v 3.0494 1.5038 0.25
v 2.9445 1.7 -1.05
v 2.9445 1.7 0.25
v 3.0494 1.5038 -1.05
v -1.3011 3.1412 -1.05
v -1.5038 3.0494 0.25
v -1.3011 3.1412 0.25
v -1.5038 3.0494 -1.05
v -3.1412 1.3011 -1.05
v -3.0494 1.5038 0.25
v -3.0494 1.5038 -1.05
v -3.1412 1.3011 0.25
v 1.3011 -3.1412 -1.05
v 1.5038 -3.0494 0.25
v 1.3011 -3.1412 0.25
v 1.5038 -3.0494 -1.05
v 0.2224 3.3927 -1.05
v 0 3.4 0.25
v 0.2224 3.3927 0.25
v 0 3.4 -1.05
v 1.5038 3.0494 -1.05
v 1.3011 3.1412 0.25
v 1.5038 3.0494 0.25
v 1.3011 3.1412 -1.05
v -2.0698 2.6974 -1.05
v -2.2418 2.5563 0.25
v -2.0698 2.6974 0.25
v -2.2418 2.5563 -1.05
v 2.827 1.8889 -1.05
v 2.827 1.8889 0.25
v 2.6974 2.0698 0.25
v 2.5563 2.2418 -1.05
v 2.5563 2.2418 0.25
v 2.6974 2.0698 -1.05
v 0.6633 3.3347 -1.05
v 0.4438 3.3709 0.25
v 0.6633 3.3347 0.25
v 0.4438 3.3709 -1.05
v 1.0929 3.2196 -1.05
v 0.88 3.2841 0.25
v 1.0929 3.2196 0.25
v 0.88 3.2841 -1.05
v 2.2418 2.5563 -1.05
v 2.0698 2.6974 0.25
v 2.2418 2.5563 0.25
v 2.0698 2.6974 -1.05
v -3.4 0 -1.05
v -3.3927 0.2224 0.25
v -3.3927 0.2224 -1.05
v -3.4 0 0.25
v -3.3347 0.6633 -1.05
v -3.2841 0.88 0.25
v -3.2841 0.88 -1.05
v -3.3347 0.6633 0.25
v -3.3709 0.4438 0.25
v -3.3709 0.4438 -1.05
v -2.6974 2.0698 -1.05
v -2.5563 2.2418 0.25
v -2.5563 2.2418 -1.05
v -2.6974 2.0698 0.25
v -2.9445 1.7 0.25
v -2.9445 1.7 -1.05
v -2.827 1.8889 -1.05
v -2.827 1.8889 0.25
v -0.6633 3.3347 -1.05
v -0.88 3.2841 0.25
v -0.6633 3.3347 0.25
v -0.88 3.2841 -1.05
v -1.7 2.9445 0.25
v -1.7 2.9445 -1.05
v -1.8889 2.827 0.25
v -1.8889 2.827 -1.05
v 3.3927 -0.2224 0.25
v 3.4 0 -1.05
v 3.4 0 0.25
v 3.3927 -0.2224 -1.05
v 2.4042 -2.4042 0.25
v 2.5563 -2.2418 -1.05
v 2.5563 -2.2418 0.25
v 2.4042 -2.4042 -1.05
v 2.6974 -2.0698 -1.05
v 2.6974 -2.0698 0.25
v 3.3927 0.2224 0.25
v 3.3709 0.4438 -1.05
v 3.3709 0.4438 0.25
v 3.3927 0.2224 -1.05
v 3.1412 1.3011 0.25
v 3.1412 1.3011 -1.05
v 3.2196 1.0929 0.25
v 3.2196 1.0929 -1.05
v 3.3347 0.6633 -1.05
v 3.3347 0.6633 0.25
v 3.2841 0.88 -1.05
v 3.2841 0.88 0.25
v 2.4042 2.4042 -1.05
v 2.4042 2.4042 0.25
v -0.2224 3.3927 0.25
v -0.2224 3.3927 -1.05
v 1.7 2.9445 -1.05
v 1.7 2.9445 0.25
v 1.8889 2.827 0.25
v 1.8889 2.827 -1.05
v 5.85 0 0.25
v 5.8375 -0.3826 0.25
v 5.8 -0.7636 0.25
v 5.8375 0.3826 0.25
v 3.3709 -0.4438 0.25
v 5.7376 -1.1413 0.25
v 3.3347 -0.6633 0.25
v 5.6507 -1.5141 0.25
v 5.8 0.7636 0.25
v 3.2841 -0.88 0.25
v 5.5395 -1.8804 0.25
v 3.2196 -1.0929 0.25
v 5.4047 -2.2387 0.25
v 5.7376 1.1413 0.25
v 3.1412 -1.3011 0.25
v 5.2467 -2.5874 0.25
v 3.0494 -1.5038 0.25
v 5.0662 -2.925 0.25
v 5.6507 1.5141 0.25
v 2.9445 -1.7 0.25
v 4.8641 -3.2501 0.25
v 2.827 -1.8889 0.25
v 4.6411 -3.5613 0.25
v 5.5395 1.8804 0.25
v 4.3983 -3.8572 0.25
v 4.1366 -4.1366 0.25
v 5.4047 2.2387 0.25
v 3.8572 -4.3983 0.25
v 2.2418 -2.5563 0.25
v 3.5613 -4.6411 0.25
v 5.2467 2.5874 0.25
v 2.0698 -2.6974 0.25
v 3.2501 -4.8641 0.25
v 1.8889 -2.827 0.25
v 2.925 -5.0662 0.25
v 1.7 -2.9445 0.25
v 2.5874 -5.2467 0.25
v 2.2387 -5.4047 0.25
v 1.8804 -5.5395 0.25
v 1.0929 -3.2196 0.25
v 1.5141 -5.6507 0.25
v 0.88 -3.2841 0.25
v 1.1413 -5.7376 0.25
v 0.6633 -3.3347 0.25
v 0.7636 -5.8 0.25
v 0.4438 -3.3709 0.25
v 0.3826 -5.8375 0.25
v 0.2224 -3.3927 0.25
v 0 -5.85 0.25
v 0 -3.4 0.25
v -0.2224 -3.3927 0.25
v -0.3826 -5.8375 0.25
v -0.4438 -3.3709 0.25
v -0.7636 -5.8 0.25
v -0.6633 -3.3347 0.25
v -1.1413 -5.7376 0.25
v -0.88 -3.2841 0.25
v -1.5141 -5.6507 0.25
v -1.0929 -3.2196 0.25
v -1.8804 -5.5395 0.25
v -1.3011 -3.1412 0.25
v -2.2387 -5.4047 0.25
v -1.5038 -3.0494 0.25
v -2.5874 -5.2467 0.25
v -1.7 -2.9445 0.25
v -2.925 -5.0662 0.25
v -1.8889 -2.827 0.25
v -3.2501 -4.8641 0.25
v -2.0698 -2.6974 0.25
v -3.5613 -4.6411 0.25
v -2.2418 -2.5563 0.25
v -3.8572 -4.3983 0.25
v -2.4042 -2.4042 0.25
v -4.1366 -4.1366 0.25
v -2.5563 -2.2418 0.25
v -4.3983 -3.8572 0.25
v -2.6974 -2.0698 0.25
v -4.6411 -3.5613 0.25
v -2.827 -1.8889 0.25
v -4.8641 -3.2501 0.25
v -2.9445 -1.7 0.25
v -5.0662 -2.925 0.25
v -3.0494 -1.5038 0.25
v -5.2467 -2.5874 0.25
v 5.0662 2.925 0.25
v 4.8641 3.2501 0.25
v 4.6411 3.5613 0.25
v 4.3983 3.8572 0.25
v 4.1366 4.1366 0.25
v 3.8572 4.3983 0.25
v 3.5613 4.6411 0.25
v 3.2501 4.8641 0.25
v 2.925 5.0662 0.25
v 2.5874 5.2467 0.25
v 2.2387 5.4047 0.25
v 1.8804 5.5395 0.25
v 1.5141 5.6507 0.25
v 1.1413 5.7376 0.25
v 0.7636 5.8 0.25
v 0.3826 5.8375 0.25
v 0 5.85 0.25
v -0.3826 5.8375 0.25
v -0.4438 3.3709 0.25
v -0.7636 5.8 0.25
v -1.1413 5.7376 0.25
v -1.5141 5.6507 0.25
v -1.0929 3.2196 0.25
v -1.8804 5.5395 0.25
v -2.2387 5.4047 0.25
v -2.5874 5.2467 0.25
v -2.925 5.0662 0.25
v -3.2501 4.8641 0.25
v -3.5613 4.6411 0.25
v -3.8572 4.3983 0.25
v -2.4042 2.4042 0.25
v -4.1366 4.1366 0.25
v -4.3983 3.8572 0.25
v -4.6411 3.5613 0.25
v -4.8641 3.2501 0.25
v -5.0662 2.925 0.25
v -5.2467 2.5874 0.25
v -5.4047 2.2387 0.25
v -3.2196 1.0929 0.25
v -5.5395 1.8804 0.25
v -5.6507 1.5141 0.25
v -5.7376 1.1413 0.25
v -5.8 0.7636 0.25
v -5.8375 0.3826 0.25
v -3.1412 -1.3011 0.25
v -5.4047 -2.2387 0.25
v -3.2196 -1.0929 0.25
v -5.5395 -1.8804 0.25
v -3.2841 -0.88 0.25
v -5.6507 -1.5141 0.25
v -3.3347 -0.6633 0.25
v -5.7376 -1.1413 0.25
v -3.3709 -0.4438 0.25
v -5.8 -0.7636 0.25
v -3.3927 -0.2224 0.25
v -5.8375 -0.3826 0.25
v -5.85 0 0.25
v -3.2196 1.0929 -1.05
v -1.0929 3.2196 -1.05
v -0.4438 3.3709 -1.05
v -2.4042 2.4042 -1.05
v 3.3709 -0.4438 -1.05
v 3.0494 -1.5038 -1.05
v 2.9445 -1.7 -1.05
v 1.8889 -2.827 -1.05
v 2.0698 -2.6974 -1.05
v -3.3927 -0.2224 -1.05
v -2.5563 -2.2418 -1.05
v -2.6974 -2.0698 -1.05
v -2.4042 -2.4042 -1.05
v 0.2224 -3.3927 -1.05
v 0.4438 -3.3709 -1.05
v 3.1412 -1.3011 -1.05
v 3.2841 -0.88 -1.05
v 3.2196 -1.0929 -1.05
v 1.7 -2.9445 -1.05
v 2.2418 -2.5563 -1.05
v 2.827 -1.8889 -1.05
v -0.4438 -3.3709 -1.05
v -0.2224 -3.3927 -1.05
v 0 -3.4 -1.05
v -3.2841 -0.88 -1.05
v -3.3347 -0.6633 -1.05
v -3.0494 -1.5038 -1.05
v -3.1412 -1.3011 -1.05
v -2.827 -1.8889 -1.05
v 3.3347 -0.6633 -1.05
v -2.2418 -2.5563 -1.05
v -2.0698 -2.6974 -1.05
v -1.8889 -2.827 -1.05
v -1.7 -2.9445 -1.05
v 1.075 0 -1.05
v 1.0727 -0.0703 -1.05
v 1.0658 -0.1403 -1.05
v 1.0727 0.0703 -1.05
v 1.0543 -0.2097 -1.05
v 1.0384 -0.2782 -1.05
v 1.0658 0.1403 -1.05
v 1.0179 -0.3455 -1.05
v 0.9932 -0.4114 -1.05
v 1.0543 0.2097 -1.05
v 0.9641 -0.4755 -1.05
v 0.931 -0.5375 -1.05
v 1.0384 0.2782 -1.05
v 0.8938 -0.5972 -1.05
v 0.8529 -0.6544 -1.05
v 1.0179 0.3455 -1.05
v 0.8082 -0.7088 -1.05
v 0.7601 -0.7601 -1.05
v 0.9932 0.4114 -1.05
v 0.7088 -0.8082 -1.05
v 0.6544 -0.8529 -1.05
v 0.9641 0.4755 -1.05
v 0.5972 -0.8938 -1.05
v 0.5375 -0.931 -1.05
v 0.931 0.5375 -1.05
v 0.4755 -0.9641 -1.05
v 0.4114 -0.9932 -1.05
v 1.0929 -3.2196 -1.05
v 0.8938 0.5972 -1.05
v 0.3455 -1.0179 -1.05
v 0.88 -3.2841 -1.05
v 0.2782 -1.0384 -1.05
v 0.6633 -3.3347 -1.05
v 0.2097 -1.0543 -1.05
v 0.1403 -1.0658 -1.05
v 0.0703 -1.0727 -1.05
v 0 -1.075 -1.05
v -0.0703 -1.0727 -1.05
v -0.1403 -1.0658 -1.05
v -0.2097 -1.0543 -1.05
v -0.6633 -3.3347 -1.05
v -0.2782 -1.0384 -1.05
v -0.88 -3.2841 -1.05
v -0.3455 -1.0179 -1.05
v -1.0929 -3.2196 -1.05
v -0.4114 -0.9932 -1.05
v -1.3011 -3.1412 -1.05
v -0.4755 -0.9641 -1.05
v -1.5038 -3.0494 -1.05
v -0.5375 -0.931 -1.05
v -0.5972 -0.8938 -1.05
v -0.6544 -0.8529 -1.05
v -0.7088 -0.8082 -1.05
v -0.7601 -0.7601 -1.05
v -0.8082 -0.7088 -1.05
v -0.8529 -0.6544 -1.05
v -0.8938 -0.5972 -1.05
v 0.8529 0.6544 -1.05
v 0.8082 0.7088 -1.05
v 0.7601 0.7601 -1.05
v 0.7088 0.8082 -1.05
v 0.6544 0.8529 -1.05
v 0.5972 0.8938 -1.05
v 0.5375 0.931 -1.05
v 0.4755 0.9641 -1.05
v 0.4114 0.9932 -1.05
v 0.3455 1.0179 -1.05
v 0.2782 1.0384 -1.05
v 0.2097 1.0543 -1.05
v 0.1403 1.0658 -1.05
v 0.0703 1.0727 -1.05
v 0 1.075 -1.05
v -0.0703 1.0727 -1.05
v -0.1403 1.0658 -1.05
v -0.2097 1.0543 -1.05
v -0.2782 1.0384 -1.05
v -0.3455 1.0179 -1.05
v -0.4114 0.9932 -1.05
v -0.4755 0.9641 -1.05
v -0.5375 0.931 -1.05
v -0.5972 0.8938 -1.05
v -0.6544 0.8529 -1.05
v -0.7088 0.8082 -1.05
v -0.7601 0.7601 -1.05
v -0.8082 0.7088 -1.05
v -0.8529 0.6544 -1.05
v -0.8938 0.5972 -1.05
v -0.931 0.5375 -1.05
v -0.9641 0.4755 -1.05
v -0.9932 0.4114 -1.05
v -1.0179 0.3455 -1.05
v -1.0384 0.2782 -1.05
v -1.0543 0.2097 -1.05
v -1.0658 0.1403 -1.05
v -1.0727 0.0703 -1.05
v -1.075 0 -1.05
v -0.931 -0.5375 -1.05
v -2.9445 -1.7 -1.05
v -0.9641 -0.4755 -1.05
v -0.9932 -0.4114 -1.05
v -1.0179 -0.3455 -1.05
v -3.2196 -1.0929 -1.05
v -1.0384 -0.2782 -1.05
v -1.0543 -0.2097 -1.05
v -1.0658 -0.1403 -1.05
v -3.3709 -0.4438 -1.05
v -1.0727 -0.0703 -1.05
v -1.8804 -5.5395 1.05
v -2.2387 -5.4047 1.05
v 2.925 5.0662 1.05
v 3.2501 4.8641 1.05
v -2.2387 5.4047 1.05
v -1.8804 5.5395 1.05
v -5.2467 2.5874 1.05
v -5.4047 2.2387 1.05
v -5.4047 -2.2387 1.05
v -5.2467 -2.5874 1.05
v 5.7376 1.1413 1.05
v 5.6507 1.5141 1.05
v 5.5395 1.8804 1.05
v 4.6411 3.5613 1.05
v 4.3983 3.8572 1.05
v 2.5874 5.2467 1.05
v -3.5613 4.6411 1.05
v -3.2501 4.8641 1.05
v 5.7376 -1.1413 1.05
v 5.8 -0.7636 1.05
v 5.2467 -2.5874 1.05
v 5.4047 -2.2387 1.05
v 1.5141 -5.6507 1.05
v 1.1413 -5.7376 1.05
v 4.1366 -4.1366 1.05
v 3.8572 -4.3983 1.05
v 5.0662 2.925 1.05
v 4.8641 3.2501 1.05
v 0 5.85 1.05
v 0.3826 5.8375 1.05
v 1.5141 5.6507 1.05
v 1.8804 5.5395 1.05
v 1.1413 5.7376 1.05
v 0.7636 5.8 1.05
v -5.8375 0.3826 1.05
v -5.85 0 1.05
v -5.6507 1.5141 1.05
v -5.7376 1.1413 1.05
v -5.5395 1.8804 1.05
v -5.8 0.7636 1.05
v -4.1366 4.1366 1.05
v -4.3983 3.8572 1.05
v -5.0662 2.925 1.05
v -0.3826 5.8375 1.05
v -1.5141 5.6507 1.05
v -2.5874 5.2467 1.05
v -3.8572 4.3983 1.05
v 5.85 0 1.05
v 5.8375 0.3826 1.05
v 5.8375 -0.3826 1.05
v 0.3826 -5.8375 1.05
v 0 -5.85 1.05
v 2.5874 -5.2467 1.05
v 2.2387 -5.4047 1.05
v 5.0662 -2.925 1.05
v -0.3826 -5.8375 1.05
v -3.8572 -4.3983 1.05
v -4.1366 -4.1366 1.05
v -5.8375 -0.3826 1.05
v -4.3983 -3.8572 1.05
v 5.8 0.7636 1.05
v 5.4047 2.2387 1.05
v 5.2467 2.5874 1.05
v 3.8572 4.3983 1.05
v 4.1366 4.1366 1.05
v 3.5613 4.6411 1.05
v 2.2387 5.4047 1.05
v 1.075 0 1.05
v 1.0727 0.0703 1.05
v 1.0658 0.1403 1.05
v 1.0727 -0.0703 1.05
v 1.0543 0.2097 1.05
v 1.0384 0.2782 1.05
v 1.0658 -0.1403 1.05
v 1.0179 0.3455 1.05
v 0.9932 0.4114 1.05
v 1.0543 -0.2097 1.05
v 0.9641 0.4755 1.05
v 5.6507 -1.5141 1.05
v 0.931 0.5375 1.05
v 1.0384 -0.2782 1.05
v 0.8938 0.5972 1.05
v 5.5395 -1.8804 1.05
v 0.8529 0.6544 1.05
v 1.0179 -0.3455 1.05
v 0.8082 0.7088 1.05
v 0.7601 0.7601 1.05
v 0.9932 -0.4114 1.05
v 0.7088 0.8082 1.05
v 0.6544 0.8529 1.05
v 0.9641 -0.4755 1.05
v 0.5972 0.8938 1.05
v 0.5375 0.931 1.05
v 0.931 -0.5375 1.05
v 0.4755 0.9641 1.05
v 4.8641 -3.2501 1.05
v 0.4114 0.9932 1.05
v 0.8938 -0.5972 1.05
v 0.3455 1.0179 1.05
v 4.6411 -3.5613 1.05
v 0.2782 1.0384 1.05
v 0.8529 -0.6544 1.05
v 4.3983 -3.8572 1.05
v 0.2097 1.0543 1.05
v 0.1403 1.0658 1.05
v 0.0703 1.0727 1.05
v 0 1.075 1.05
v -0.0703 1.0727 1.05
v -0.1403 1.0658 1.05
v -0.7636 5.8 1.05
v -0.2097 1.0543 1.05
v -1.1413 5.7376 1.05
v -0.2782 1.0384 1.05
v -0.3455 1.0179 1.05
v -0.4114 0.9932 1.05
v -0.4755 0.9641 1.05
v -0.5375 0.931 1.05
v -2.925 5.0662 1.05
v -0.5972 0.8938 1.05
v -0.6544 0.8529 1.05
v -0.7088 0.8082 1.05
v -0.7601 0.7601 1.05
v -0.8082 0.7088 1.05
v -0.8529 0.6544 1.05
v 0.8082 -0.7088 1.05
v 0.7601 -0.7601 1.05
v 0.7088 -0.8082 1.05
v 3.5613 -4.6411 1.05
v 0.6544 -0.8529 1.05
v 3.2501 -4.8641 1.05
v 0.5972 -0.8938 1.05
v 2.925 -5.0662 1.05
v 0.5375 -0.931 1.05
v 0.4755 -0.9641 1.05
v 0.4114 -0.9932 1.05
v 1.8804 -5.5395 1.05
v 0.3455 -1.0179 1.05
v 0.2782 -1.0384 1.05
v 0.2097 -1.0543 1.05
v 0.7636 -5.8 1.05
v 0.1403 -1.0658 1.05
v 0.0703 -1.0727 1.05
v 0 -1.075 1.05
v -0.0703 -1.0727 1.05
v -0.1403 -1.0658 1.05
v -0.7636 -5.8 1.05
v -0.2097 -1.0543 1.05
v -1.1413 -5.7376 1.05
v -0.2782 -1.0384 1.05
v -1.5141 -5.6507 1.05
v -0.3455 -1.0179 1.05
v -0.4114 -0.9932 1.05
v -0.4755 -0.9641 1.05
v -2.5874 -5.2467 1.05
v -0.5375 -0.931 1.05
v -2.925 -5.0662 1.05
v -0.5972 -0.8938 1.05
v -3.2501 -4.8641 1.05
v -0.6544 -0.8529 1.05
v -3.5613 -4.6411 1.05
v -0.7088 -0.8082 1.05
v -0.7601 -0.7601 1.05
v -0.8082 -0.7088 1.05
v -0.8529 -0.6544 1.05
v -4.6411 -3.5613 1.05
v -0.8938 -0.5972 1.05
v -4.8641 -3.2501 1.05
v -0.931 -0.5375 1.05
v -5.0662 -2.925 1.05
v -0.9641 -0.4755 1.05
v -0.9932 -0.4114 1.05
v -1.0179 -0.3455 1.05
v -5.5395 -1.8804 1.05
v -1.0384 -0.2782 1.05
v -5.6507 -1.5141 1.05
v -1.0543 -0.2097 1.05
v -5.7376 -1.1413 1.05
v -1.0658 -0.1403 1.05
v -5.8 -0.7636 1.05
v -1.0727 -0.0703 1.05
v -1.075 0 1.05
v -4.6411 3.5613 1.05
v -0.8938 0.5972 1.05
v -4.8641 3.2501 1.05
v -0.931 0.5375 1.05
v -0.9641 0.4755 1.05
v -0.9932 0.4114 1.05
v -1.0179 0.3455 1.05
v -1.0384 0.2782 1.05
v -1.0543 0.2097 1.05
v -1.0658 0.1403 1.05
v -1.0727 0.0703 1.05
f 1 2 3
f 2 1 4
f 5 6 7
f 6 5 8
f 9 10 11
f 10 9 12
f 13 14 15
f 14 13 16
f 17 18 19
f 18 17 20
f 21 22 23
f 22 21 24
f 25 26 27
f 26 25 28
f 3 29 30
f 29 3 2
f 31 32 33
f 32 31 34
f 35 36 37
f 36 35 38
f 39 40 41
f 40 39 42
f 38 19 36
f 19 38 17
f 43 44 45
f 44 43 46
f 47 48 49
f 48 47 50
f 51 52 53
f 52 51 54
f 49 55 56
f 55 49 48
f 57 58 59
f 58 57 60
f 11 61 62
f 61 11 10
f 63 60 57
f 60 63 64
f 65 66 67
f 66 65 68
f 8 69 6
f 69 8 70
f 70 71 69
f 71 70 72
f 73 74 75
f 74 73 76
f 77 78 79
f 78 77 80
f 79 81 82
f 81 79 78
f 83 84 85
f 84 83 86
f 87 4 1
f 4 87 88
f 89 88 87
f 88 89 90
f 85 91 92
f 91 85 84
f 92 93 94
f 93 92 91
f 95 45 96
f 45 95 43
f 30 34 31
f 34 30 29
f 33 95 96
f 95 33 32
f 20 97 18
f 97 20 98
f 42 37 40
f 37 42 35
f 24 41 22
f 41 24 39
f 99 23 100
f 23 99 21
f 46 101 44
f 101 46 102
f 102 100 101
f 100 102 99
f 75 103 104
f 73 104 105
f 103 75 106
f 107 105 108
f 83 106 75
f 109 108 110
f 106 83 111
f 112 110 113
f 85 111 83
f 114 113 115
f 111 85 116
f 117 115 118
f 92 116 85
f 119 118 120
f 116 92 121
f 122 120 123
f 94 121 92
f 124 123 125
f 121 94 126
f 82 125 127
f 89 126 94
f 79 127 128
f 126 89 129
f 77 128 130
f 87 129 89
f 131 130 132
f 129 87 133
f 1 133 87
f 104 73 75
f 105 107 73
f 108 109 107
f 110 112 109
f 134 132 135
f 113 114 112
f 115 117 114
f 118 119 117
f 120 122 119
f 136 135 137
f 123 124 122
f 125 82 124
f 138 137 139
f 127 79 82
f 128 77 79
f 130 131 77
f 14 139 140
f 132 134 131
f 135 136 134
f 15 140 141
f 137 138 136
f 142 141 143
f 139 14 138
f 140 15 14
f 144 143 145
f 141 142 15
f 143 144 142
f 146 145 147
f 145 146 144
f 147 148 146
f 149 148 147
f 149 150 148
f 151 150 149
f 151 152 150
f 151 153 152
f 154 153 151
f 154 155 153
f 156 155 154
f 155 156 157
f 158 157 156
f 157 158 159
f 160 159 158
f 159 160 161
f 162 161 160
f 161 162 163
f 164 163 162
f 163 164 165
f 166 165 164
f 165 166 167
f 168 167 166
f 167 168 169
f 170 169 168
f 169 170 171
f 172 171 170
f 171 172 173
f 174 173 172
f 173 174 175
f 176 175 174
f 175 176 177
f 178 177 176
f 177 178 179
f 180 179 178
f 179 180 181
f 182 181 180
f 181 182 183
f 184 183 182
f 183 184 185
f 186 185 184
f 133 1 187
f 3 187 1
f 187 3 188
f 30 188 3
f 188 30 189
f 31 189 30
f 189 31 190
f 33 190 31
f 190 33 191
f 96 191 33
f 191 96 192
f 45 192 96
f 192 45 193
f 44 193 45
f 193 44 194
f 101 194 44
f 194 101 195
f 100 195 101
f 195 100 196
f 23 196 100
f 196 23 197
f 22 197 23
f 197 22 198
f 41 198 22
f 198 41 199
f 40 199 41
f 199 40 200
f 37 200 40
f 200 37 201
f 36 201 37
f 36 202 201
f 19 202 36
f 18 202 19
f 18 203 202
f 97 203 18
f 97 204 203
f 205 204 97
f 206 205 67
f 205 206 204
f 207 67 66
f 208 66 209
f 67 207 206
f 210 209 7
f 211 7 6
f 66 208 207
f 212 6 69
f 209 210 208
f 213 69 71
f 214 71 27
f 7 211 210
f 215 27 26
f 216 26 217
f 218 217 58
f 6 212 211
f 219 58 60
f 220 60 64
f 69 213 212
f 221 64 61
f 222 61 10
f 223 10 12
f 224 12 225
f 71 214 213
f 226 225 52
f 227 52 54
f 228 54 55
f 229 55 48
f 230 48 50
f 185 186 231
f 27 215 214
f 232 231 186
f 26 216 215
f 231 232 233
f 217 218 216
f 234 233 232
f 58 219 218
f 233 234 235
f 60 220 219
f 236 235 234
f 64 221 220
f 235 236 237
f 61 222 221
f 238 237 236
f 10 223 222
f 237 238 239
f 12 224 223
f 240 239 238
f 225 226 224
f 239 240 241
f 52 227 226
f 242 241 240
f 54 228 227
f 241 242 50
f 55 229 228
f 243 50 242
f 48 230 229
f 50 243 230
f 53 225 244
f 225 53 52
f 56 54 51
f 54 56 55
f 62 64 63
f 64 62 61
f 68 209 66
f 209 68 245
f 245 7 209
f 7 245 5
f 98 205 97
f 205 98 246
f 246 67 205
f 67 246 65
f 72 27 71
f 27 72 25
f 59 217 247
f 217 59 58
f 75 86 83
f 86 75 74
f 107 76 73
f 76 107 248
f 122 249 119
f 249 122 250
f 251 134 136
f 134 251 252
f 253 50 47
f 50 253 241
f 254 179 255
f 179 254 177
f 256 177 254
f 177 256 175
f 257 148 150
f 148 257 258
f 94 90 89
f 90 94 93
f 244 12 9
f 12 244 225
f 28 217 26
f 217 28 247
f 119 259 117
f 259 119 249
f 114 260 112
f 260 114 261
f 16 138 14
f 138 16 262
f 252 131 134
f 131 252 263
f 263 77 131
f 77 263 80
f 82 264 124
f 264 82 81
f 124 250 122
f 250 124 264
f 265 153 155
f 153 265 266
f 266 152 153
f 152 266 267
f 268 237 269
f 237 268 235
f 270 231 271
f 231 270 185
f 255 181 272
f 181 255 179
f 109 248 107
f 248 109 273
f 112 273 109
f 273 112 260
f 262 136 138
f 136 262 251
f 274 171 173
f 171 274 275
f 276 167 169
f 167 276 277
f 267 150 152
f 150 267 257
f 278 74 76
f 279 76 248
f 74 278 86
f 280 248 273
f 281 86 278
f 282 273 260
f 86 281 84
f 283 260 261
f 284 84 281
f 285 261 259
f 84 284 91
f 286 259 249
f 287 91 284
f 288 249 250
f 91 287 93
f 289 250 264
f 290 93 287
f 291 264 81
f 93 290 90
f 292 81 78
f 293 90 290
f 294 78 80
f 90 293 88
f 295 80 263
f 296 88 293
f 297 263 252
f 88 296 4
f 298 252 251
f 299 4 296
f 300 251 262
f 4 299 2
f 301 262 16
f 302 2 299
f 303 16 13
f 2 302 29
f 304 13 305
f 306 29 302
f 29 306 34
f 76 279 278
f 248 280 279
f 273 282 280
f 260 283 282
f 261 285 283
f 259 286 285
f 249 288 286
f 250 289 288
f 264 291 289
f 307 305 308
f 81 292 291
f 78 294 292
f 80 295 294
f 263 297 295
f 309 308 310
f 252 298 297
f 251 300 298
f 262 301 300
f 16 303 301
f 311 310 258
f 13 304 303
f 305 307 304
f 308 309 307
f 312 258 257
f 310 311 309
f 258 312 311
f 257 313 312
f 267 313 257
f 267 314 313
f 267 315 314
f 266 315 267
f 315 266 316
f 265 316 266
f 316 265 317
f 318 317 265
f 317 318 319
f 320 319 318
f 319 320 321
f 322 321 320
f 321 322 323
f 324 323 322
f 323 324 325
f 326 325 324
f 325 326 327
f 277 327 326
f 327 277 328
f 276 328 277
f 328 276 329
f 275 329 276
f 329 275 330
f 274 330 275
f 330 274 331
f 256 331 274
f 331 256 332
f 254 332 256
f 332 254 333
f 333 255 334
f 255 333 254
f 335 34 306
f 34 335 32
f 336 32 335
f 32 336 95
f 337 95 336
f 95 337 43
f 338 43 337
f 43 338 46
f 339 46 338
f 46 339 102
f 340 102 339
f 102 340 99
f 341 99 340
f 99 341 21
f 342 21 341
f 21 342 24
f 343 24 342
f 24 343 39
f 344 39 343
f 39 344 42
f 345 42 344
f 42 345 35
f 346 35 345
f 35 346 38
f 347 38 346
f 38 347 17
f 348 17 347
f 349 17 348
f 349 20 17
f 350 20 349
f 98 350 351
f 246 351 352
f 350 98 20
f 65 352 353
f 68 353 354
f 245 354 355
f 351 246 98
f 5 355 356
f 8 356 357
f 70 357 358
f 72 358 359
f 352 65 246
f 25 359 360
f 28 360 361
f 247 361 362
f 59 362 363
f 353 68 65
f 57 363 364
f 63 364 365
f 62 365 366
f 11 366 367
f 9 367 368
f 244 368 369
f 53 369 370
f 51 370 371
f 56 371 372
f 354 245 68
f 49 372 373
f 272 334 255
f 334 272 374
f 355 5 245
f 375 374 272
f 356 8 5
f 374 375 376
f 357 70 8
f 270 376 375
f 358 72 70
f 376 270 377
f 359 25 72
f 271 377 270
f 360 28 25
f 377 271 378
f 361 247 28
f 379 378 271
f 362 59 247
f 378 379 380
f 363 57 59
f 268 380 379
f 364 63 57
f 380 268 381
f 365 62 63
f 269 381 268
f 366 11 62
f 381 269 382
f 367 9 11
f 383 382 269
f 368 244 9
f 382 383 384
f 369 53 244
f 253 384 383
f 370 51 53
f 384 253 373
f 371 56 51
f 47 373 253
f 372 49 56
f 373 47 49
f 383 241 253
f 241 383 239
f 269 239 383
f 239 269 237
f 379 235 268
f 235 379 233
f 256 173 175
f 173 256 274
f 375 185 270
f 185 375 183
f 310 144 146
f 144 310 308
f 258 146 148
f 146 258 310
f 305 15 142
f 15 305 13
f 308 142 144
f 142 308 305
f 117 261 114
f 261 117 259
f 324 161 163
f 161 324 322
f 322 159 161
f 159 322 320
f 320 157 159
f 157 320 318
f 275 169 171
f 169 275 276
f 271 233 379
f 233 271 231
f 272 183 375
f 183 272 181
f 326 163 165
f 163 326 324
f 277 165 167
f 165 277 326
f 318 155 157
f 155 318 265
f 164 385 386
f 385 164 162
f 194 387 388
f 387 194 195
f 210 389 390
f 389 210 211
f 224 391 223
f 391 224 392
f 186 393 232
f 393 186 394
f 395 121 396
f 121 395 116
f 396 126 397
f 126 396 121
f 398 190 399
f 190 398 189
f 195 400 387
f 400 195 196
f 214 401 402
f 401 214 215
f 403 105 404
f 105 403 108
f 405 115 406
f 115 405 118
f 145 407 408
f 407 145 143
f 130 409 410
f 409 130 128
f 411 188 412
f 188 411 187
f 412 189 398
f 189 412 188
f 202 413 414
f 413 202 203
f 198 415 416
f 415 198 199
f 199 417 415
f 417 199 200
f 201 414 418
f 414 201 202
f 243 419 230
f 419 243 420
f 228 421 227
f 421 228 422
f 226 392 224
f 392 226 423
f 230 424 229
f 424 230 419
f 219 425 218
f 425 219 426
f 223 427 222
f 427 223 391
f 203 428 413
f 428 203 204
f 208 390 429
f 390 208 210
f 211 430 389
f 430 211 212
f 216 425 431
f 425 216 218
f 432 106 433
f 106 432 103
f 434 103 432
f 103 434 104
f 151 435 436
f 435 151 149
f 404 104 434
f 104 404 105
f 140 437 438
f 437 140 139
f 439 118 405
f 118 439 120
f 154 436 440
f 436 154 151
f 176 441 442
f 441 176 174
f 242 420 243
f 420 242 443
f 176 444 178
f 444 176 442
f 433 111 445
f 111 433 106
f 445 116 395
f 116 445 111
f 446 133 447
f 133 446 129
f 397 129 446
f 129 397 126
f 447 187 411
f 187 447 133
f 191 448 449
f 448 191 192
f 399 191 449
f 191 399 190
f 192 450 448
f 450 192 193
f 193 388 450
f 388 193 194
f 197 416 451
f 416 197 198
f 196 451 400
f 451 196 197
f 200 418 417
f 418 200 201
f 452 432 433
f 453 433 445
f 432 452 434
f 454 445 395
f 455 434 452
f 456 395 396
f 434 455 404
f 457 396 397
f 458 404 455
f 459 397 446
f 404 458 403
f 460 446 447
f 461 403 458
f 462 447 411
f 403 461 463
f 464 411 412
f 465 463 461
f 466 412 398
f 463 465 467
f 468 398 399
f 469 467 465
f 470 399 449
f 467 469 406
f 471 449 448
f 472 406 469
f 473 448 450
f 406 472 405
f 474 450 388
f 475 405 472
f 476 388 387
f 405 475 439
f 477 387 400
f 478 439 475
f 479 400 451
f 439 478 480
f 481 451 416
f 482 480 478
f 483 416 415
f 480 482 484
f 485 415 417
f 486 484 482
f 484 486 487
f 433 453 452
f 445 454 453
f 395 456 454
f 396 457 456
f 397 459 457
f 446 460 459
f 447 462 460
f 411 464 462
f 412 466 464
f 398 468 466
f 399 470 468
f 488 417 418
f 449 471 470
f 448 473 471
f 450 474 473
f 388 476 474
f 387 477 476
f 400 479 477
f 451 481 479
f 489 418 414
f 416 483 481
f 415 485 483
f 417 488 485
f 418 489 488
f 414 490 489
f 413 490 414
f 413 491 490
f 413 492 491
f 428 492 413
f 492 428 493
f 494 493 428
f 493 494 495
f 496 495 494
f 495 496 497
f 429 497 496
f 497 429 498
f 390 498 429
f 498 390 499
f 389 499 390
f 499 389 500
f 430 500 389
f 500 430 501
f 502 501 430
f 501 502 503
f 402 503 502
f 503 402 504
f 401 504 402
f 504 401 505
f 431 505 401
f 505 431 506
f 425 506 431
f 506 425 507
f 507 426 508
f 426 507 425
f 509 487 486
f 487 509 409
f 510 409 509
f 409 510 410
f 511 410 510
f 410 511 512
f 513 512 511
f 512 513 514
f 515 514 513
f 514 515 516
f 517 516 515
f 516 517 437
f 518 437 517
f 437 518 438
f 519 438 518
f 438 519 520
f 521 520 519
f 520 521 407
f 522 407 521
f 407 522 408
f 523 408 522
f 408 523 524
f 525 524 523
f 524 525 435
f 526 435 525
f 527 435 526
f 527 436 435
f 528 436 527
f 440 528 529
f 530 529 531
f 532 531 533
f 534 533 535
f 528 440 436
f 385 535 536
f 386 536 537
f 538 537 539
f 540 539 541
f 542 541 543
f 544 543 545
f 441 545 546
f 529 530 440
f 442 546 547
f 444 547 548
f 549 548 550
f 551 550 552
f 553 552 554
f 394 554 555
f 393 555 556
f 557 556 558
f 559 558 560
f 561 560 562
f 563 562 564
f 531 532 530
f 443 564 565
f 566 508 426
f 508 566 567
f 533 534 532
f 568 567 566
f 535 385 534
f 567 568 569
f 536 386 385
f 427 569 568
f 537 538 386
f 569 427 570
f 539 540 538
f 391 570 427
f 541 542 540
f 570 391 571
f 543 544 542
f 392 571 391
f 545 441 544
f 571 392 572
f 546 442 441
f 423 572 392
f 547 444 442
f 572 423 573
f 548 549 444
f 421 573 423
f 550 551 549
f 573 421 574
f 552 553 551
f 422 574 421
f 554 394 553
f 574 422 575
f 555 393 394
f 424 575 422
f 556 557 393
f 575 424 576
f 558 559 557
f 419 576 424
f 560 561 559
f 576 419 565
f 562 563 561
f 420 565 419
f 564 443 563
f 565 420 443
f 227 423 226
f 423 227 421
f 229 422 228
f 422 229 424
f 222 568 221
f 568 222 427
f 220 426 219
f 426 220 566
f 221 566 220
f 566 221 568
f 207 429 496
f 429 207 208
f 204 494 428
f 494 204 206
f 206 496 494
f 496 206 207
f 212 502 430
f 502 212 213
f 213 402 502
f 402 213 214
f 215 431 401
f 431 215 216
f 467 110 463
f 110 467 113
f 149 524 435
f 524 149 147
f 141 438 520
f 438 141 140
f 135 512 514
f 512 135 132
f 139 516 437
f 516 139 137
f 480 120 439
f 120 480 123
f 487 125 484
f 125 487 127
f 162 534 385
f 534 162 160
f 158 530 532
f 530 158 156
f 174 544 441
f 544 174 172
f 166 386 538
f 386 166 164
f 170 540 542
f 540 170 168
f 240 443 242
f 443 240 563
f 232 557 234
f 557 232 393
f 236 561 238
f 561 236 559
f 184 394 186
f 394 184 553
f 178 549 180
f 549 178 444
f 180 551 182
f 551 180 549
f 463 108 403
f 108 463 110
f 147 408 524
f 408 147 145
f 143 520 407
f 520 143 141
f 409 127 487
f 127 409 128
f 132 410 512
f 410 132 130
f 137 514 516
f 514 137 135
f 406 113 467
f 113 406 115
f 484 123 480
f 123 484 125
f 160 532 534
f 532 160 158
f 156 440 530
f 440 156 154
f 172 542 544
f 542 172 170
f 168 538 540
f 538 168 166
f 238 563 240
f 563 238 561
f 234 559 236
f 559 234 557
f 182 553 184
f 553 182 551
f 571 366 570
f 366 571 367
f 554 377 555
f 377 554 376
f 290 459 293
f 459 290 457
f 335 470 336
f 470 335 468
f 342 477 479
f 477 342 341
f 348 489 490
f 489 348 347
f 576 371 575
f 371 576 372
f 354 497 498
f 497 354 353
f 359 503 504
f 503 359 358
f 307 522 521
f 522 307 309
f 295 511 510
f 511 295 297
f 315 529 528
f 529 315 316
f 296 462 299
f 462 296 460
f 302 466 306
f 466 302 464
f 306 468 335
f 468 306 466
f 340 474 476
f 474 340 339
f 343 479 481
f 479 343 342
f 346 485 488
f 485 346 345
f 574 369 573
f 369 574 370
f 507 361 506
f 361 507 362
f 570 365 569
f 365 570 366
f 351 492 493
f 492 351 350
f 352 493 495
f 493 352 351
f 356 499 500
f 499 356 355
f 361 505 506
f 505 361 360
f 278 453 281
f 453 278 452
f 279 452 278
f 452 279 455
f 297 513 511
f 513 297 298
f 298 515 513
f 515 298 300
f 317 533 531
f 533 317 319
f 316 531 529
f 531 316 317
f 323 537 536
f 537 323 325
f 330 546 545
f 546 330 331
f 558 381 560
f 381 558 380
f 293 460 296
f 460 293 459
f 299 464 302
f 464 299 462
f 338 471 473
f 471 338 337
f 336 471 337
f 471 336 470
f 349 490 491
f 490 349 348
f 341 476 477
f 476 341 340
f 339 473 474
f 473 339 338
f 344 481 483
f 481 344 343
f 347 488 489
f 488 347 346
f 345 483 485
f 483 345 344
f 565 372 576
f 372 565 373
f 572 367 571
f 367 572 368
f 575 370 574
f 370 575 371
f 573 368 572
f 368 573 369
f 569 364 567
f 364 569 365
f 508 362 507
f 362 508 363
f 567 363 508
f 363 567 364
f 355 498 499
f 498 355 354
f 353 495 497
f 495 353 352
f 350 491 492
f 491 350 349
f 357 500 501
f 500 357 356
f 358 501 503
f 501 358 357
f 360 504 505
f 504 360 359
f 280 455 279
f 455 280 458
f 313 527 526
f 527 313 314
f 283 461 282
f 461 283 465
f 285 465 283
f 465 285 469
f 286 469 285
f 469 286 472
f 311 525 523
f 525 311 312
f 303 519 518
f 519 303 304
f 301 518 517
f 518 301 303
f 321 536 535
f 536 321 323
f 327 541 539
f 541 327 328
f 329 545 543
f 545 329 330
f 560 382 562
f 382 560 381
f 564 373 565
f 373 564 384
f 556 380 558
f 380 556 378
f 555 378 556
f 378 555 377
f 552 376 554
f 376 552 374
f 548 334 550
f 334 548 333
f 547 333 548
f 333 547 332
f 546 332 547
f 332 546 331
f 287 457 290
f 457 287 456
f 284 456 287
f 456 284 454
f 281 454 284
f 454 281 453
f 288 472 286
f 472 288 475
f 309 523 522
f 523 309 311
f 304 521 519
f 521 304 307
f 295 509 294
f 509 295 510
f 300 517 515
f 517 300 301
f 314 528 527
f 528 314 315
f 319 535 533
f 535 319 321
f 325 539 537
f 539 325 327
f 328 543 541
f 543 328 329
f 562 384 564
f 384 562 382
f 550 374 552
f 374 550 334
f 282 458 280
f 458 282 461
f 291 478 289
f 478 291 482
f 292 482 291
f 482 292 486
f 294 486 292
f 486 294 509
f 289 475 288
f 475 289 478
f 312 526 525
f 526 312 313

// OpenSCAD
// file: DAEX_dimensions.scad
/*
DAEX_dimensions.scad

Shared dimensional parameters for the DAEX-9-4SM actuator assembly.

Units: millimeters

Coordinate convention used by the housing and lower plate:
X = along finger / actuator length
Y = across finger / actuator width
Z = thickness
Housing origin = center of upper housing
Plate origin   = center of lower plate
Top = +Z
Bottom = -Z

This file contains:
- common direct dimensions
- upper-housing dimensions
- lower-plate dimensions
- screw-adjustable tapper dimensions
- common derived dimensions and feature-center coordinates

It intentionally contains no rendered geometry.
*/

// ============================================================================
// Rendering / Boolean-control values
// ============================================================================

upper_fn = 72;
lower_fn = 72;
tapper_fn = 96;

eps = 0.04;
small_extension = 0.08;


// ============================================================================
// Common assembly envelope
// ============================================================================

housing_x = 36.0;
housing_y = 19.7;
housing_z = 11.25;

plate_x = housing_x;
plate_y = housing_y;
plate_z = 3.5;


// ============================================================================
// DAEX actuator and central cavity
// ============================================================================

DAEX_x = 31.0;

cavity_x = 21.3;
cavity_y = 14.0;

// Upper-housing cavity depth measured upward from the housing bottom
cavity_depth = 6.25;

// Lower-plate top pocket depth measured downward from the plate top
cavity_z = 1.8;


// ============================================================================
// Common exterior end- and side-wall dimensions
// ============================================================================

x_wall_width = (housing_x - DAEX_x)/2;
y_wall_width = (housing_y - cavity_y)/2;


// ============================================================================
// Screw system shared by upper housing and lower plate
// ============================================================================

counterbore_d = 5.2;
counterbore_depth = 2.1;

screw_head_offset = 1.0;
screw_offset = counterbore_d/2 + screw_head_offset;

// Four screw/hole center magnitudes from the assembly origin
screw_center_x = housing_x/2 - screw_offset;
screw_center_y = housing_y/2 - screw_offset;

// Upper housing pilot/tap holes
tap_hole_d = 2.25;
tap_hole_depth = 6.0;

// Lower plate clearance holes
clearance_hole_d = 2.75;


// ============================================================================
// Upper-housing exterior fillets
// ============================================================================

comfort_r = 1.0;
comfort_steps = 12;


// ============================================================================
// Upper-housing DAEX ledges
// ============================================================================

ledge_x = 1.65;
ledge_y = 11.4;
ledge_depth = 2.7;

ledge_center_x = cavity_x/2 + ledge_x/2;


// ============================================================================
// Shared contact-cavity geometry
// ============================================================================

contact_cavity_y = 5.1;

// Upper-housing contact-cavity depth
contact_cavity_depth = 2.7;

// Lower-plate contact-cavity depth
contact_cavity_z = cavity_z;

// Contact-cavity X length is the space from the ledge to the inner face
// of the closed +/-X end wall.
contact_cavity_x =
    housing_x/2 -
    cavity_x/2 -
    ledge_x -
    x_wall_width;

// Upper housing: cavity center lies beyond the ledge
upper_contact_cavity_center_x =
    cavity_x/2 +
    ledge_x +
    contact_cavity_x/2;

// Lower plate: cavity runs directly from the central pocket edge
// to the inner face of the closed +/-X end wall.
lower_contact_cavity_x =
    (plate_x - cavity_x)/2 -
    x_wall_width;

lower_contact_cavity_center_x =
    cavity_x/2 +
    lower_contact_cavity_x/2;

contact_cavity_center_y = 0;


// ============================================================================
// Wire trenches in upper housing
// ============================================================================

wire_trench_y = 1.6;
wire_trench_depth = cavity_depth;
wire_trench_x = contact_cavity_x + ledge_x;

wire_trench_center_x =
    cavity_x/2 +
    wire_trench_x/2;

wire_trench_center_y =
    -contact_cavity_y/2 +
    wire_trench_y/2;


// ============================================================================
// Matching semicylindrical wire-clamp grooves
// ============================================================================

wire_groove_d = 1.0;
wire_groove_x = 3.56;

wire_groove_center_y =
    -(cavity_y/2 + y_wall_width/2);

// Upper groove centerline lies on the upper-housing bottom mating plane
upper_wire_groove_center_z = -housing_z/2;

// Lower groove centerline lies on the lower-plate top mating plane
lower_wire_groove_center_z = plate_z/2;

wire_groove_length = y_wall_width + 2*small_extension;


// ============================================================================
// Upper-housing center hole
// ============================================================================

center_hole_d = 7.1;


// ============================================================================
// Upper-housing finger groove
// ============================================================================

finger_groove_x = 27.6;
finger_groove_y = 15.5;
finger_groove_depth = 2.5;
finger_groove_x_offset = 1.7;

finger_groove_plan_radius = 8.0;
finger_groove_side_radius = 3.0;
finger_groove_fillet_radius = 1.0;
finger_groove_steps = 40;

groove_open_end_beyond_housing = 0.60;
finger_groove_open_x_max =
    housing_x/2 + groove_open_end_beyond_housing;


// ============================================================================
// Lower-plate exterior fillets
// ============================================================================

plate_fillet_radius = 0.5;
plate_fillet_steps = 10;


// ============================================================================
// Lower-plate vent slots
// ============================================================================

vent_x = 1.6;
vent_y = 11.2;
vent_center_x = cavity_x/2 - 3*vent_x/2;


// ============================================================================
// Screw-adjustable tapper
// ============================================================================

// Broad upper cylinder bonded to / carried by the DAEX moving element
tapper_mid_d = 11.7;
tapper_mid_z = 0.8;

// Lower locating cylinder
tapper_bottom_d = 6.8;
tapper_bottom_z = 1.3;

// Center through-hole, subsequently tapped for an M2.5 adjustment screw
tapper_hole_d = 2.15;

tapper_total_z =
    tapper_mid_z +
    tapper_bottom_z;

// Tapper-cylinder center Z coordinates when the tapper origin is at the
// center of the complete two-cylinder stack.
tapper_bottom_center_z =
    -tapper_total_z/2 +
    tapper_bottom_z/2;

tapper_mid_center_z =
    -tapper_total_z/2 +
    tapper_bottom_z +
    tapper_mid_z/2;


// ============================================================================
// Assembly-level derived dimensions
// ============================================================================

assembled_body_z = housing_z + plate_z;

// With the housing and plate centered separately in their own files,
// these translations place their mating faces together in an assembly file.
assembly_upper_translate_z = plate_z/2;
assembly_lower_translate_z = -housing_z/2;

// Mating-plane location if the complete assembled body is centered at Z = 0.
assembly_mating_plane_z =
    (plate_z - housing_z)/2;

// Useful minimum material checks
counterbore_edge_clearance = screw_head_offset;

counterbore_to_outer_x =
    plate_x/2 -
    (screw_center_x + counterbore_d/2);

counterbore_to_outer_y =
    plate_y/2 -
    (screw_center_y + counterbore_d/2);
// main file
/*
DAEX_tapper.scad

Two-step screw-adjustable tapper for the DAEX-9-4SM actuator assembly.

All fixed and shared derived dimensions are supplied by:
    DAEX_dimensions.scad

The centered through-hole is printed at 2.15 mm and is intended to be tapped
for the nylon M2.5 adjustment screw.

Coordinate convention:
X/Y = radial directions
Z = stack direction
Top = +Z, toward finger
Bottom = -Z, toward DAEX moving element
Origin = center of complete two-cylinder tapper
*/

include <DAEX_dimensions.scad>

$fn = tapper_fn;


module DAEX_tapper() {
    difference() {
        union() {
            // Lower locating cylinder
            translate([0, 0, tapper_bottom_center_z])
                cylinder(
                    d = tapper_bottom_d,
                    h = tapper_bottom_z,
                    center = true
                );

            // Broad upper cylinder
            translate([0, 0, tapper_mid_center_z])
                cylinder(
                    d = tapper_mid_d,
                    h = tapper_mid_z,
                    center = true
                );
        }

        // Center through-hole.
        // The extra eps at each end guarantees a clean Boolean opening.
        cylinder(
            d = tapper_hole_d,
            h = tapper_total_z + 2*eps,
            center = true
        );
    }
}


// Render this part when the file is opened directly.
DAEX_tapper();
